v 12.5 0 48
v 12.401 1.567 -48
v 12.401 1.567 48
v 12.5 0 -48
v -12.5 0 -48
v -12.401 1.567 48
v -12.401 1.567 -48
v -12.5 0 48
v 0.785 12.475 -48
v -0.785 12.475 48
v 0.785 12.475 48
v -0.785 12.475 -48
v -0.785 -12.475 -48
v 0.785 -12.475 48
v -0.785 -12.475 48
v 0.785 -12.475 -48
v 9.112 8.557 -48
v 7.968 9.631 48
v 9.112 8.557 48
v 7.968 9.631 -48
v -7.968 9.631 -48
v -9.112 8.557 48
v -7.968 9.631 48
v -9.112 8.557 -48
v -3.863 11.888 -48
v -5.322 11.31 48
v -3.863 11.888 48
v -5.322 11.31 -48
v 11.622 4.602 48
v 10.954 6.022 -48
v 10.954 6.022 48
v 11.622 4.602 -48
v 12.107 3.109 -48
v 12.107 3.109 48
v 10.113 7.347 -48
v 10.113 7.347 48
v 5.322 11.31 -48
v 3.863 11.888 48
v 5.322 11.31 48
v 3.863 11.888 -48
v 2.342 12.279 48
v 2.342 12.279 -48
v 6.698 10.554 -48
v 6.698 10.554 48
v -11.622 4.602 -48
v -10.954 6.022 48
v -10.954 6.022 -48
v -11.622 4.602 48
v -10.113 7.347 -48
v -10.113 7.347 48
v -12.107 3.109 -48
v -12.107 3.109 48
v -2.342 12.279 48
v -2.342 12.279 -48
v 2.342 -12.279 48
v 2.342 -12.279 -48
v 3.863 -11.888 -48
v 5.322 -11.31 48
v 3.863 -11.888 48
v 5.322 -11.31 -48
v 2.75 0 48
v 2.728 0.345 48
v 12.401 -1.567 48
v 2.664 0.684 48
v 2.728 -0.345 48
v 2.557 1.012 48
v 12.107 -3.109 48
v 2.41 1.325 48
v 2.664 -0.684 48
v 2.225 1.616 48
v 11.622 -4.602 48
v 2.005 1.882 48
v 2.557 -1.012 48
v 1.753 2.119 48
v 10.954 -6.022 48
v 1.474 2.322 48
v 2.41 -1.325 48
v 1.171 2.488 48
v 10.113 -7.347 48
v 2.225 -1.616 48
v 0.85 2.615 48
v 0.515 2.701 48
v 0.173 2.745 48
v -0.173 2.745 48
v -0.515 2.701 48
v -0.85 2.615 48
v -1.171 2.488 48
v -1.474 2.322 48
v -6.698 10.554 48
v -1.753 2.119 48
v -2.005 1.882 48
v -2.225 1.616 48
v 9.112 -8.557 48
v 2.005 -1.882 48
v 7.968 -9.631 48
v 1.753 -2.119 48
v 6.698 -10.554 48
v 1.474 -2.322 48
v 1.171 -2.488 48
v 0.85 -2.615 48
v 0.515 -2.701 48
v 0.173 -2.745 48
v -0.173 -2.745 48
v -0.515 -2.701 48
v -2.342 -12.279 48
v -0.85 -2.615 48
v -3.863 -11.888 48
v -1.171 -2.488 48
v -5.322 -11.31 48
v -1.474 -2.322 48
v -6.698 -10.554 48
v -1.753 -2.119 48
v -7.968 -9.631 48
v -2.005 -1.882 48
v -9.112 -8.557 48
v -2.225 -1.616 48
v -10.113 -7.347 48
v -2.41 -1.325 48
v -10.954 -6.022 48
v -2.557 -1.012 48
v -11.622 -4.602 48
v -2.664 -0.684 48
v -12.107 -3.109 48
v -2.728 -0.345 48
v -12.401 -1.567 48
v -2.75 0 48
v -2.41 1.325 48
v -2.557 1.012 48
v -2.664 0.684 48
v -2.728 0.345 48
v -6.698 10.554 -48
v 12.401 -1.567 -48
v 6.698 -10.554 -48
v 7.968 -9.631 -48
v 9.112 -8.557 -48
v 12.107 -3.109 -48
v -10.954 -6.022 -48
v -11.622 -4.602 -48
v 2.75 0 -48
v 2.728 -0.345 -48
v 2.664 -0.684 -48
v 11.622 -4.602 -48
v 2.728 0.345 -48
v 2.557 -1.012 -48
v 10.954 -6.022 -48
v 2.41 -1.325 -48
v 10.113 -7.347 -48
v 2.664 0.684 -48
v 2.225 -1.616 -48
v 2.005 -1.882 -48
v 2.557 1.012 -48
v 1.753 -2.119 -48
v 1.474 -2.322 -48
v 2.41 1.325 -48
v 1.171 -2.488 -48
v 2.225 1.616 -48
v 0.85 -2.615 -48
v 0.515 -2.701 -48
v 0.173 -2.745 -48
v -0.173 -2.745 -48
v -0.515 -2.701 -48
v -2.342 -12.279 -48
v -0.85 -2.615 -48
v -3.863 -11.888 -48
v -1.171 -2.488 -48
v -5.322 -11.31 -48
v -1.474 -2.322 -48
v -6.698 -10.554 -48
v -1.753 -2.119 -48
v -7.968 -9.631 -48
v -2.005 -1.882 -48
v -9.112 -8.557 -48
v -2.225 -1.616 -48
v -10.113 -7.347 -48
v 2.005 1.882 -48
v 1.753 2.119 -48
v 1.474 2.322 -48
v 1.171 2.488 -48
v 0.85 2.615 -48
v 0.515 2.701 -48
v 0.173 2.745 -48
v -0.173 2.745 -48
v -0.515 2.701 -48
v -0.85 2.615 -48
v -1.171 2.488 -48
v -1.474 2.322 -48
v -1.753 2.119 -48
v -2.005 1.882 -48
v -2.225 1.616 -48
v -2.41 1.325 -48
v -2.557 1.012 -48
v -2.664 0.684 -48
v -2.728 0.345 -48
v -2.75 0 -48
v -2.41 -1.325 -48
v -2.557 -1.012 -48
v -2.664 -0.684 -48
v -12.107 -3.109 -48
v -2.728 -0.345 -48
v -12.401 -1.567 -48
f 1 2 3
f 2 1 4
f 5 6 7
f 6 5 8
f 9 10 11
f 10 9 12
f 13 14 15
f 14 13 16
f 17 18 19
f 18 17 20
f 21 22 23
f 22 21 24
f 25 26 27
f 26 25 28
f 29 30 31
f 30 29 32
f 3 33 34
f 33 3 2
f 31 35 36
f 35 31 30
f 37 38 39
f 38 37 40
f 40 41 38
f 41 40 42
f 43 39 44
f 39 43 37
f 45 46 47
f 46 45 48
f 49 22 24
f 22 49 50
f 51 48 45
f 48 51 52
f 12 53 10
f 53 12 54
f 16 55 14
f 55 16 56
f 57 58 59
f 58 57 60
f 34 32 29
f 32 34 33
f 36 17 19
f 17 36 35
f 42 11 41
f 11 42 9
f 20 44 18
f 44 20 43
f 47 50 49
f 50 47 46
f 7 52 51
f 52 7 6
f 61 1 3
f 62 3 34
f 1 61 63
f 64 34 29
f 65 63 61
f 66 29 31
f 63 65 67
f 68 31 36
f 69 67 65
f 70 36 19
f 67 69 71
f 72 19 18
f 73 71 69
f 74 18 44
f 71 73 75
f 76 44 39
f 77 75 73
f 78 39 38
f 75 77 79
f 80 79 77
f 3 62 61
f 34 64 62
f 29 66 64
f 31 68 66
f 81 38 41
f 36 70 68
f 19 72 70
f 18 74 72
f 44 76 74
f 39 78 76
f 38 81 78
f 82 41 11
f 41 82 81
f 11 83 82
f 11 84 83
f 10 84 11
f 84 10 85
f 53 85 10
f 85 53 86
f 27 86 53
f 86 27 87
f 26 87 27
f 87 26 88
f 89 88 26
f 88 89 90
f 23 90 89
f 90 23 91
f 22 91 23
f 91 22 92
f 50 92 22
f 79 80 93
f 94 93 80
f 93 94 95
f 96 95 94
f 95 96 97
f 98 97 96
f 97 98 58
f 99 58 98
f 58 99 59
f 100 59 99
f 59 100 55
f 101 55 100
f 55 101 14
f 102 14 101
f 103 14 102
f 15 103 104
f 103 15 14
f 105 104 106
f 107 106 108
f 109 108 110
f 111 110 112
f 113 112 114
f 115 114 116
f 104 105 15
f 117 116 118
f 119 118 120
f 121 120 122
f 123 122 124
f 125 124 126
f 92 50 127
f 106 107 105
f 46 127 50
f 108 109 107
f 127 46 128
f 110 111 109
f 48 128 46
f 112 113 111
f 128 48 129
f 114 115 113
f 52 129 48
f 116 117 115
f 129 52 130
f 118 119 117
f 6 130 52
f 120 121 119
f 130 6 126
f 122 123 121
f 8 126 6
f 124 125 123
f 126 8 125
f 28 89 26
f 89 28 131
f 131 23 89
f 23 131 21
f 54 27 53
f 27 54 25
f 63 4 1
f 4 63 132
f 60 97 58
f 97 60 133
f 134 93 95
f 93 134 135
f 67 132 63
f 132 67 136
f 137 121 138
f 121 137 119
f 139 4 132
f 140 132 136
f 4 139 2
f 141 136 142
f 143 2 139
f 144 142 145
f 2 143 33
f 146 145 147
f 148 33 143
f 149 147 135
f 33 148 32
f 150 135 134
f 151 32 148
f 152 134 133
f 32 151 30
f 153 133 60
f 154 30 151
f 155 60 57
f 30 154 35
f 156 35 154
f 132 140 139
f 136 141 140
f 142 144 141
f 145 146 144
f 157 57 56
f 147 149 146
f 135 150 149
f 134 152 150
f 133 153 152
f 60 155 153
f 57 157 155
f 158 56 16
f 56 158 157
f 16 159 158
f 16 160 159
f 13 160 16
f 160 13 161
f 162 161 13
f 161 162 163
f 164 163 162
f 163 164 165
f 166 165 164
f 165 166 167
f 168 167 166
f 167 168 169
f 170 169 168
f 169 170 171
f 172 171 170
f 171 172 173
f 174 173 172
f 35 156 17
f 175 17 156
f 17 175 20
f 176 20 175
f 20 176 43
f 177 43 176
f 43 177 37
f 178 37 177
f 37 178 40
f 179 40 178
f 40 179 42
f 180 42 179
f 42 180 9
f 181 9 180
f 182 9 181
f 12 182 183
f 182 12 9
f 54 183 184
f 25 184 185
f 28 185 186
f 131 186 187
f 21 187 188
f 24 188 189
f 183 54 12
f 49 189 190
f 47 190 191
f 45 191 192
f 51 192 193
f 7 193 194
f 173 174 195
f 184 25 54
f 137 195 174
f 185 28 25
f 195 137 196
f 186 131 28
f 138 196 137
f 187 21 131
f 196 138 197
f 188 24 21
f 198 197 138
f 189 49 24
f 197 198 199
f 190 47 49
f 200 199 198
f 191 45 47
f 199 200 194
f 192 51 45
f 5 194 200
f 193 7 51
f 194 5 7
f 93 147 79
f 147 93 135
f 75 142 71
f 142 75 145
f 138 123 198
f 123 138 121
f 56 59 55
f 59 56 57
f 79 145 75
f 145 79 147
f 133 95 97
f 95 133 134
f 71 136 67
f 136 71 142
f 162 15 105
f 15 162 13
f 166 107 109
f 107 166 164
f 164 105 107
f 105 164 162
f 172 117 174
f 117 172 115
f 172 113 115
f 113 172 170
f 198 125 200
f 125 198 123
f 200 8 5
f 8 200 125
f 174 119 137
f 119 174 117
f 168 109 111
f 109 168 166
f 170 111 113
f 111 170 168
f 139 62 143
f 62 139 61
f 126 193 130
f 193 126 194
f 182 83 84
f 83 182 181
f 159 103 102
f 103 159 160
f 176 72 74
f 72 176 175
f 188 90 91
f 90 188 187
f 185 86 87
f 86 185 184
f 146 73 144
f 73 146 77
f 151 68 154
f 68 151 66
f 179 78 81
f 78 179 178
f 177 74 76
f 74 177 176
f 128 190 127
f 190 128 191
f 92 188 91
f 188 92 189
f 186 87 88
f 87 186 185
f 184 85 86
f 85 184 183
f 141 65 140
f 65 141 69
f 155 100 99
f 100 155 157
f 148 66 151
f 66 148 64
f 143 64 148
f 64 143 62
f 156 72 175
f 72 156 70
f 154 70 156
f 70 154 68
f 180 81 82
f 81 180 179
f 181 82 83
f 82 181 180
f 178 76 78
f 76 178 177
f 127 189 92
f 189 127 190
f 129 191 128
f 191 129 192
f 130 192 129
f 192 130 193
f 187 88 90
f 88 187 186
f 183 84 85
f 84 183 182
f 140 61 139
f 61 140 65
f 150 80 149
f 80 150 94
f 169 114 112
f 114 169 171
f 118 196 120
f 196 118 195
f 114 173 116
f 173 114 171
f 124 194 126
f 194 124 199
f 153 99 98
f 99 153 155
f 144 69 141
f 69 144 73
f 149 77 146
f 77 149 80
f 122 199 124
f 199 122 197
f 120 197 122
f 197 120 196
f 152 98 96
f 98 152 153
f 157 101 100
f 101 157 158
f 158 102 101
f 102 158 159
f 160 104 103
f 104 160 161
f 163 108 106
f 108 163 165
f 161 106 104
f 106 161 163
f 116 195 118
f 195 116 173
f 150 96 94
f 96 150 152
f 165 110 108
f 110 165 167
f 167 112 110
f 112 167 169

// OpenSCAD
$fn = 50;


difference() {
	union() {
		translate(v = [0, 0, -48.0000000000]) {
			cylinder(h = 96, r = 12.5000000000);
		}
	}
	union() {
		translate(v = [0, 0, -100.0000000000]) {
			cylinder(h = 200, r = 2.7500000000);
		}
	}
}
